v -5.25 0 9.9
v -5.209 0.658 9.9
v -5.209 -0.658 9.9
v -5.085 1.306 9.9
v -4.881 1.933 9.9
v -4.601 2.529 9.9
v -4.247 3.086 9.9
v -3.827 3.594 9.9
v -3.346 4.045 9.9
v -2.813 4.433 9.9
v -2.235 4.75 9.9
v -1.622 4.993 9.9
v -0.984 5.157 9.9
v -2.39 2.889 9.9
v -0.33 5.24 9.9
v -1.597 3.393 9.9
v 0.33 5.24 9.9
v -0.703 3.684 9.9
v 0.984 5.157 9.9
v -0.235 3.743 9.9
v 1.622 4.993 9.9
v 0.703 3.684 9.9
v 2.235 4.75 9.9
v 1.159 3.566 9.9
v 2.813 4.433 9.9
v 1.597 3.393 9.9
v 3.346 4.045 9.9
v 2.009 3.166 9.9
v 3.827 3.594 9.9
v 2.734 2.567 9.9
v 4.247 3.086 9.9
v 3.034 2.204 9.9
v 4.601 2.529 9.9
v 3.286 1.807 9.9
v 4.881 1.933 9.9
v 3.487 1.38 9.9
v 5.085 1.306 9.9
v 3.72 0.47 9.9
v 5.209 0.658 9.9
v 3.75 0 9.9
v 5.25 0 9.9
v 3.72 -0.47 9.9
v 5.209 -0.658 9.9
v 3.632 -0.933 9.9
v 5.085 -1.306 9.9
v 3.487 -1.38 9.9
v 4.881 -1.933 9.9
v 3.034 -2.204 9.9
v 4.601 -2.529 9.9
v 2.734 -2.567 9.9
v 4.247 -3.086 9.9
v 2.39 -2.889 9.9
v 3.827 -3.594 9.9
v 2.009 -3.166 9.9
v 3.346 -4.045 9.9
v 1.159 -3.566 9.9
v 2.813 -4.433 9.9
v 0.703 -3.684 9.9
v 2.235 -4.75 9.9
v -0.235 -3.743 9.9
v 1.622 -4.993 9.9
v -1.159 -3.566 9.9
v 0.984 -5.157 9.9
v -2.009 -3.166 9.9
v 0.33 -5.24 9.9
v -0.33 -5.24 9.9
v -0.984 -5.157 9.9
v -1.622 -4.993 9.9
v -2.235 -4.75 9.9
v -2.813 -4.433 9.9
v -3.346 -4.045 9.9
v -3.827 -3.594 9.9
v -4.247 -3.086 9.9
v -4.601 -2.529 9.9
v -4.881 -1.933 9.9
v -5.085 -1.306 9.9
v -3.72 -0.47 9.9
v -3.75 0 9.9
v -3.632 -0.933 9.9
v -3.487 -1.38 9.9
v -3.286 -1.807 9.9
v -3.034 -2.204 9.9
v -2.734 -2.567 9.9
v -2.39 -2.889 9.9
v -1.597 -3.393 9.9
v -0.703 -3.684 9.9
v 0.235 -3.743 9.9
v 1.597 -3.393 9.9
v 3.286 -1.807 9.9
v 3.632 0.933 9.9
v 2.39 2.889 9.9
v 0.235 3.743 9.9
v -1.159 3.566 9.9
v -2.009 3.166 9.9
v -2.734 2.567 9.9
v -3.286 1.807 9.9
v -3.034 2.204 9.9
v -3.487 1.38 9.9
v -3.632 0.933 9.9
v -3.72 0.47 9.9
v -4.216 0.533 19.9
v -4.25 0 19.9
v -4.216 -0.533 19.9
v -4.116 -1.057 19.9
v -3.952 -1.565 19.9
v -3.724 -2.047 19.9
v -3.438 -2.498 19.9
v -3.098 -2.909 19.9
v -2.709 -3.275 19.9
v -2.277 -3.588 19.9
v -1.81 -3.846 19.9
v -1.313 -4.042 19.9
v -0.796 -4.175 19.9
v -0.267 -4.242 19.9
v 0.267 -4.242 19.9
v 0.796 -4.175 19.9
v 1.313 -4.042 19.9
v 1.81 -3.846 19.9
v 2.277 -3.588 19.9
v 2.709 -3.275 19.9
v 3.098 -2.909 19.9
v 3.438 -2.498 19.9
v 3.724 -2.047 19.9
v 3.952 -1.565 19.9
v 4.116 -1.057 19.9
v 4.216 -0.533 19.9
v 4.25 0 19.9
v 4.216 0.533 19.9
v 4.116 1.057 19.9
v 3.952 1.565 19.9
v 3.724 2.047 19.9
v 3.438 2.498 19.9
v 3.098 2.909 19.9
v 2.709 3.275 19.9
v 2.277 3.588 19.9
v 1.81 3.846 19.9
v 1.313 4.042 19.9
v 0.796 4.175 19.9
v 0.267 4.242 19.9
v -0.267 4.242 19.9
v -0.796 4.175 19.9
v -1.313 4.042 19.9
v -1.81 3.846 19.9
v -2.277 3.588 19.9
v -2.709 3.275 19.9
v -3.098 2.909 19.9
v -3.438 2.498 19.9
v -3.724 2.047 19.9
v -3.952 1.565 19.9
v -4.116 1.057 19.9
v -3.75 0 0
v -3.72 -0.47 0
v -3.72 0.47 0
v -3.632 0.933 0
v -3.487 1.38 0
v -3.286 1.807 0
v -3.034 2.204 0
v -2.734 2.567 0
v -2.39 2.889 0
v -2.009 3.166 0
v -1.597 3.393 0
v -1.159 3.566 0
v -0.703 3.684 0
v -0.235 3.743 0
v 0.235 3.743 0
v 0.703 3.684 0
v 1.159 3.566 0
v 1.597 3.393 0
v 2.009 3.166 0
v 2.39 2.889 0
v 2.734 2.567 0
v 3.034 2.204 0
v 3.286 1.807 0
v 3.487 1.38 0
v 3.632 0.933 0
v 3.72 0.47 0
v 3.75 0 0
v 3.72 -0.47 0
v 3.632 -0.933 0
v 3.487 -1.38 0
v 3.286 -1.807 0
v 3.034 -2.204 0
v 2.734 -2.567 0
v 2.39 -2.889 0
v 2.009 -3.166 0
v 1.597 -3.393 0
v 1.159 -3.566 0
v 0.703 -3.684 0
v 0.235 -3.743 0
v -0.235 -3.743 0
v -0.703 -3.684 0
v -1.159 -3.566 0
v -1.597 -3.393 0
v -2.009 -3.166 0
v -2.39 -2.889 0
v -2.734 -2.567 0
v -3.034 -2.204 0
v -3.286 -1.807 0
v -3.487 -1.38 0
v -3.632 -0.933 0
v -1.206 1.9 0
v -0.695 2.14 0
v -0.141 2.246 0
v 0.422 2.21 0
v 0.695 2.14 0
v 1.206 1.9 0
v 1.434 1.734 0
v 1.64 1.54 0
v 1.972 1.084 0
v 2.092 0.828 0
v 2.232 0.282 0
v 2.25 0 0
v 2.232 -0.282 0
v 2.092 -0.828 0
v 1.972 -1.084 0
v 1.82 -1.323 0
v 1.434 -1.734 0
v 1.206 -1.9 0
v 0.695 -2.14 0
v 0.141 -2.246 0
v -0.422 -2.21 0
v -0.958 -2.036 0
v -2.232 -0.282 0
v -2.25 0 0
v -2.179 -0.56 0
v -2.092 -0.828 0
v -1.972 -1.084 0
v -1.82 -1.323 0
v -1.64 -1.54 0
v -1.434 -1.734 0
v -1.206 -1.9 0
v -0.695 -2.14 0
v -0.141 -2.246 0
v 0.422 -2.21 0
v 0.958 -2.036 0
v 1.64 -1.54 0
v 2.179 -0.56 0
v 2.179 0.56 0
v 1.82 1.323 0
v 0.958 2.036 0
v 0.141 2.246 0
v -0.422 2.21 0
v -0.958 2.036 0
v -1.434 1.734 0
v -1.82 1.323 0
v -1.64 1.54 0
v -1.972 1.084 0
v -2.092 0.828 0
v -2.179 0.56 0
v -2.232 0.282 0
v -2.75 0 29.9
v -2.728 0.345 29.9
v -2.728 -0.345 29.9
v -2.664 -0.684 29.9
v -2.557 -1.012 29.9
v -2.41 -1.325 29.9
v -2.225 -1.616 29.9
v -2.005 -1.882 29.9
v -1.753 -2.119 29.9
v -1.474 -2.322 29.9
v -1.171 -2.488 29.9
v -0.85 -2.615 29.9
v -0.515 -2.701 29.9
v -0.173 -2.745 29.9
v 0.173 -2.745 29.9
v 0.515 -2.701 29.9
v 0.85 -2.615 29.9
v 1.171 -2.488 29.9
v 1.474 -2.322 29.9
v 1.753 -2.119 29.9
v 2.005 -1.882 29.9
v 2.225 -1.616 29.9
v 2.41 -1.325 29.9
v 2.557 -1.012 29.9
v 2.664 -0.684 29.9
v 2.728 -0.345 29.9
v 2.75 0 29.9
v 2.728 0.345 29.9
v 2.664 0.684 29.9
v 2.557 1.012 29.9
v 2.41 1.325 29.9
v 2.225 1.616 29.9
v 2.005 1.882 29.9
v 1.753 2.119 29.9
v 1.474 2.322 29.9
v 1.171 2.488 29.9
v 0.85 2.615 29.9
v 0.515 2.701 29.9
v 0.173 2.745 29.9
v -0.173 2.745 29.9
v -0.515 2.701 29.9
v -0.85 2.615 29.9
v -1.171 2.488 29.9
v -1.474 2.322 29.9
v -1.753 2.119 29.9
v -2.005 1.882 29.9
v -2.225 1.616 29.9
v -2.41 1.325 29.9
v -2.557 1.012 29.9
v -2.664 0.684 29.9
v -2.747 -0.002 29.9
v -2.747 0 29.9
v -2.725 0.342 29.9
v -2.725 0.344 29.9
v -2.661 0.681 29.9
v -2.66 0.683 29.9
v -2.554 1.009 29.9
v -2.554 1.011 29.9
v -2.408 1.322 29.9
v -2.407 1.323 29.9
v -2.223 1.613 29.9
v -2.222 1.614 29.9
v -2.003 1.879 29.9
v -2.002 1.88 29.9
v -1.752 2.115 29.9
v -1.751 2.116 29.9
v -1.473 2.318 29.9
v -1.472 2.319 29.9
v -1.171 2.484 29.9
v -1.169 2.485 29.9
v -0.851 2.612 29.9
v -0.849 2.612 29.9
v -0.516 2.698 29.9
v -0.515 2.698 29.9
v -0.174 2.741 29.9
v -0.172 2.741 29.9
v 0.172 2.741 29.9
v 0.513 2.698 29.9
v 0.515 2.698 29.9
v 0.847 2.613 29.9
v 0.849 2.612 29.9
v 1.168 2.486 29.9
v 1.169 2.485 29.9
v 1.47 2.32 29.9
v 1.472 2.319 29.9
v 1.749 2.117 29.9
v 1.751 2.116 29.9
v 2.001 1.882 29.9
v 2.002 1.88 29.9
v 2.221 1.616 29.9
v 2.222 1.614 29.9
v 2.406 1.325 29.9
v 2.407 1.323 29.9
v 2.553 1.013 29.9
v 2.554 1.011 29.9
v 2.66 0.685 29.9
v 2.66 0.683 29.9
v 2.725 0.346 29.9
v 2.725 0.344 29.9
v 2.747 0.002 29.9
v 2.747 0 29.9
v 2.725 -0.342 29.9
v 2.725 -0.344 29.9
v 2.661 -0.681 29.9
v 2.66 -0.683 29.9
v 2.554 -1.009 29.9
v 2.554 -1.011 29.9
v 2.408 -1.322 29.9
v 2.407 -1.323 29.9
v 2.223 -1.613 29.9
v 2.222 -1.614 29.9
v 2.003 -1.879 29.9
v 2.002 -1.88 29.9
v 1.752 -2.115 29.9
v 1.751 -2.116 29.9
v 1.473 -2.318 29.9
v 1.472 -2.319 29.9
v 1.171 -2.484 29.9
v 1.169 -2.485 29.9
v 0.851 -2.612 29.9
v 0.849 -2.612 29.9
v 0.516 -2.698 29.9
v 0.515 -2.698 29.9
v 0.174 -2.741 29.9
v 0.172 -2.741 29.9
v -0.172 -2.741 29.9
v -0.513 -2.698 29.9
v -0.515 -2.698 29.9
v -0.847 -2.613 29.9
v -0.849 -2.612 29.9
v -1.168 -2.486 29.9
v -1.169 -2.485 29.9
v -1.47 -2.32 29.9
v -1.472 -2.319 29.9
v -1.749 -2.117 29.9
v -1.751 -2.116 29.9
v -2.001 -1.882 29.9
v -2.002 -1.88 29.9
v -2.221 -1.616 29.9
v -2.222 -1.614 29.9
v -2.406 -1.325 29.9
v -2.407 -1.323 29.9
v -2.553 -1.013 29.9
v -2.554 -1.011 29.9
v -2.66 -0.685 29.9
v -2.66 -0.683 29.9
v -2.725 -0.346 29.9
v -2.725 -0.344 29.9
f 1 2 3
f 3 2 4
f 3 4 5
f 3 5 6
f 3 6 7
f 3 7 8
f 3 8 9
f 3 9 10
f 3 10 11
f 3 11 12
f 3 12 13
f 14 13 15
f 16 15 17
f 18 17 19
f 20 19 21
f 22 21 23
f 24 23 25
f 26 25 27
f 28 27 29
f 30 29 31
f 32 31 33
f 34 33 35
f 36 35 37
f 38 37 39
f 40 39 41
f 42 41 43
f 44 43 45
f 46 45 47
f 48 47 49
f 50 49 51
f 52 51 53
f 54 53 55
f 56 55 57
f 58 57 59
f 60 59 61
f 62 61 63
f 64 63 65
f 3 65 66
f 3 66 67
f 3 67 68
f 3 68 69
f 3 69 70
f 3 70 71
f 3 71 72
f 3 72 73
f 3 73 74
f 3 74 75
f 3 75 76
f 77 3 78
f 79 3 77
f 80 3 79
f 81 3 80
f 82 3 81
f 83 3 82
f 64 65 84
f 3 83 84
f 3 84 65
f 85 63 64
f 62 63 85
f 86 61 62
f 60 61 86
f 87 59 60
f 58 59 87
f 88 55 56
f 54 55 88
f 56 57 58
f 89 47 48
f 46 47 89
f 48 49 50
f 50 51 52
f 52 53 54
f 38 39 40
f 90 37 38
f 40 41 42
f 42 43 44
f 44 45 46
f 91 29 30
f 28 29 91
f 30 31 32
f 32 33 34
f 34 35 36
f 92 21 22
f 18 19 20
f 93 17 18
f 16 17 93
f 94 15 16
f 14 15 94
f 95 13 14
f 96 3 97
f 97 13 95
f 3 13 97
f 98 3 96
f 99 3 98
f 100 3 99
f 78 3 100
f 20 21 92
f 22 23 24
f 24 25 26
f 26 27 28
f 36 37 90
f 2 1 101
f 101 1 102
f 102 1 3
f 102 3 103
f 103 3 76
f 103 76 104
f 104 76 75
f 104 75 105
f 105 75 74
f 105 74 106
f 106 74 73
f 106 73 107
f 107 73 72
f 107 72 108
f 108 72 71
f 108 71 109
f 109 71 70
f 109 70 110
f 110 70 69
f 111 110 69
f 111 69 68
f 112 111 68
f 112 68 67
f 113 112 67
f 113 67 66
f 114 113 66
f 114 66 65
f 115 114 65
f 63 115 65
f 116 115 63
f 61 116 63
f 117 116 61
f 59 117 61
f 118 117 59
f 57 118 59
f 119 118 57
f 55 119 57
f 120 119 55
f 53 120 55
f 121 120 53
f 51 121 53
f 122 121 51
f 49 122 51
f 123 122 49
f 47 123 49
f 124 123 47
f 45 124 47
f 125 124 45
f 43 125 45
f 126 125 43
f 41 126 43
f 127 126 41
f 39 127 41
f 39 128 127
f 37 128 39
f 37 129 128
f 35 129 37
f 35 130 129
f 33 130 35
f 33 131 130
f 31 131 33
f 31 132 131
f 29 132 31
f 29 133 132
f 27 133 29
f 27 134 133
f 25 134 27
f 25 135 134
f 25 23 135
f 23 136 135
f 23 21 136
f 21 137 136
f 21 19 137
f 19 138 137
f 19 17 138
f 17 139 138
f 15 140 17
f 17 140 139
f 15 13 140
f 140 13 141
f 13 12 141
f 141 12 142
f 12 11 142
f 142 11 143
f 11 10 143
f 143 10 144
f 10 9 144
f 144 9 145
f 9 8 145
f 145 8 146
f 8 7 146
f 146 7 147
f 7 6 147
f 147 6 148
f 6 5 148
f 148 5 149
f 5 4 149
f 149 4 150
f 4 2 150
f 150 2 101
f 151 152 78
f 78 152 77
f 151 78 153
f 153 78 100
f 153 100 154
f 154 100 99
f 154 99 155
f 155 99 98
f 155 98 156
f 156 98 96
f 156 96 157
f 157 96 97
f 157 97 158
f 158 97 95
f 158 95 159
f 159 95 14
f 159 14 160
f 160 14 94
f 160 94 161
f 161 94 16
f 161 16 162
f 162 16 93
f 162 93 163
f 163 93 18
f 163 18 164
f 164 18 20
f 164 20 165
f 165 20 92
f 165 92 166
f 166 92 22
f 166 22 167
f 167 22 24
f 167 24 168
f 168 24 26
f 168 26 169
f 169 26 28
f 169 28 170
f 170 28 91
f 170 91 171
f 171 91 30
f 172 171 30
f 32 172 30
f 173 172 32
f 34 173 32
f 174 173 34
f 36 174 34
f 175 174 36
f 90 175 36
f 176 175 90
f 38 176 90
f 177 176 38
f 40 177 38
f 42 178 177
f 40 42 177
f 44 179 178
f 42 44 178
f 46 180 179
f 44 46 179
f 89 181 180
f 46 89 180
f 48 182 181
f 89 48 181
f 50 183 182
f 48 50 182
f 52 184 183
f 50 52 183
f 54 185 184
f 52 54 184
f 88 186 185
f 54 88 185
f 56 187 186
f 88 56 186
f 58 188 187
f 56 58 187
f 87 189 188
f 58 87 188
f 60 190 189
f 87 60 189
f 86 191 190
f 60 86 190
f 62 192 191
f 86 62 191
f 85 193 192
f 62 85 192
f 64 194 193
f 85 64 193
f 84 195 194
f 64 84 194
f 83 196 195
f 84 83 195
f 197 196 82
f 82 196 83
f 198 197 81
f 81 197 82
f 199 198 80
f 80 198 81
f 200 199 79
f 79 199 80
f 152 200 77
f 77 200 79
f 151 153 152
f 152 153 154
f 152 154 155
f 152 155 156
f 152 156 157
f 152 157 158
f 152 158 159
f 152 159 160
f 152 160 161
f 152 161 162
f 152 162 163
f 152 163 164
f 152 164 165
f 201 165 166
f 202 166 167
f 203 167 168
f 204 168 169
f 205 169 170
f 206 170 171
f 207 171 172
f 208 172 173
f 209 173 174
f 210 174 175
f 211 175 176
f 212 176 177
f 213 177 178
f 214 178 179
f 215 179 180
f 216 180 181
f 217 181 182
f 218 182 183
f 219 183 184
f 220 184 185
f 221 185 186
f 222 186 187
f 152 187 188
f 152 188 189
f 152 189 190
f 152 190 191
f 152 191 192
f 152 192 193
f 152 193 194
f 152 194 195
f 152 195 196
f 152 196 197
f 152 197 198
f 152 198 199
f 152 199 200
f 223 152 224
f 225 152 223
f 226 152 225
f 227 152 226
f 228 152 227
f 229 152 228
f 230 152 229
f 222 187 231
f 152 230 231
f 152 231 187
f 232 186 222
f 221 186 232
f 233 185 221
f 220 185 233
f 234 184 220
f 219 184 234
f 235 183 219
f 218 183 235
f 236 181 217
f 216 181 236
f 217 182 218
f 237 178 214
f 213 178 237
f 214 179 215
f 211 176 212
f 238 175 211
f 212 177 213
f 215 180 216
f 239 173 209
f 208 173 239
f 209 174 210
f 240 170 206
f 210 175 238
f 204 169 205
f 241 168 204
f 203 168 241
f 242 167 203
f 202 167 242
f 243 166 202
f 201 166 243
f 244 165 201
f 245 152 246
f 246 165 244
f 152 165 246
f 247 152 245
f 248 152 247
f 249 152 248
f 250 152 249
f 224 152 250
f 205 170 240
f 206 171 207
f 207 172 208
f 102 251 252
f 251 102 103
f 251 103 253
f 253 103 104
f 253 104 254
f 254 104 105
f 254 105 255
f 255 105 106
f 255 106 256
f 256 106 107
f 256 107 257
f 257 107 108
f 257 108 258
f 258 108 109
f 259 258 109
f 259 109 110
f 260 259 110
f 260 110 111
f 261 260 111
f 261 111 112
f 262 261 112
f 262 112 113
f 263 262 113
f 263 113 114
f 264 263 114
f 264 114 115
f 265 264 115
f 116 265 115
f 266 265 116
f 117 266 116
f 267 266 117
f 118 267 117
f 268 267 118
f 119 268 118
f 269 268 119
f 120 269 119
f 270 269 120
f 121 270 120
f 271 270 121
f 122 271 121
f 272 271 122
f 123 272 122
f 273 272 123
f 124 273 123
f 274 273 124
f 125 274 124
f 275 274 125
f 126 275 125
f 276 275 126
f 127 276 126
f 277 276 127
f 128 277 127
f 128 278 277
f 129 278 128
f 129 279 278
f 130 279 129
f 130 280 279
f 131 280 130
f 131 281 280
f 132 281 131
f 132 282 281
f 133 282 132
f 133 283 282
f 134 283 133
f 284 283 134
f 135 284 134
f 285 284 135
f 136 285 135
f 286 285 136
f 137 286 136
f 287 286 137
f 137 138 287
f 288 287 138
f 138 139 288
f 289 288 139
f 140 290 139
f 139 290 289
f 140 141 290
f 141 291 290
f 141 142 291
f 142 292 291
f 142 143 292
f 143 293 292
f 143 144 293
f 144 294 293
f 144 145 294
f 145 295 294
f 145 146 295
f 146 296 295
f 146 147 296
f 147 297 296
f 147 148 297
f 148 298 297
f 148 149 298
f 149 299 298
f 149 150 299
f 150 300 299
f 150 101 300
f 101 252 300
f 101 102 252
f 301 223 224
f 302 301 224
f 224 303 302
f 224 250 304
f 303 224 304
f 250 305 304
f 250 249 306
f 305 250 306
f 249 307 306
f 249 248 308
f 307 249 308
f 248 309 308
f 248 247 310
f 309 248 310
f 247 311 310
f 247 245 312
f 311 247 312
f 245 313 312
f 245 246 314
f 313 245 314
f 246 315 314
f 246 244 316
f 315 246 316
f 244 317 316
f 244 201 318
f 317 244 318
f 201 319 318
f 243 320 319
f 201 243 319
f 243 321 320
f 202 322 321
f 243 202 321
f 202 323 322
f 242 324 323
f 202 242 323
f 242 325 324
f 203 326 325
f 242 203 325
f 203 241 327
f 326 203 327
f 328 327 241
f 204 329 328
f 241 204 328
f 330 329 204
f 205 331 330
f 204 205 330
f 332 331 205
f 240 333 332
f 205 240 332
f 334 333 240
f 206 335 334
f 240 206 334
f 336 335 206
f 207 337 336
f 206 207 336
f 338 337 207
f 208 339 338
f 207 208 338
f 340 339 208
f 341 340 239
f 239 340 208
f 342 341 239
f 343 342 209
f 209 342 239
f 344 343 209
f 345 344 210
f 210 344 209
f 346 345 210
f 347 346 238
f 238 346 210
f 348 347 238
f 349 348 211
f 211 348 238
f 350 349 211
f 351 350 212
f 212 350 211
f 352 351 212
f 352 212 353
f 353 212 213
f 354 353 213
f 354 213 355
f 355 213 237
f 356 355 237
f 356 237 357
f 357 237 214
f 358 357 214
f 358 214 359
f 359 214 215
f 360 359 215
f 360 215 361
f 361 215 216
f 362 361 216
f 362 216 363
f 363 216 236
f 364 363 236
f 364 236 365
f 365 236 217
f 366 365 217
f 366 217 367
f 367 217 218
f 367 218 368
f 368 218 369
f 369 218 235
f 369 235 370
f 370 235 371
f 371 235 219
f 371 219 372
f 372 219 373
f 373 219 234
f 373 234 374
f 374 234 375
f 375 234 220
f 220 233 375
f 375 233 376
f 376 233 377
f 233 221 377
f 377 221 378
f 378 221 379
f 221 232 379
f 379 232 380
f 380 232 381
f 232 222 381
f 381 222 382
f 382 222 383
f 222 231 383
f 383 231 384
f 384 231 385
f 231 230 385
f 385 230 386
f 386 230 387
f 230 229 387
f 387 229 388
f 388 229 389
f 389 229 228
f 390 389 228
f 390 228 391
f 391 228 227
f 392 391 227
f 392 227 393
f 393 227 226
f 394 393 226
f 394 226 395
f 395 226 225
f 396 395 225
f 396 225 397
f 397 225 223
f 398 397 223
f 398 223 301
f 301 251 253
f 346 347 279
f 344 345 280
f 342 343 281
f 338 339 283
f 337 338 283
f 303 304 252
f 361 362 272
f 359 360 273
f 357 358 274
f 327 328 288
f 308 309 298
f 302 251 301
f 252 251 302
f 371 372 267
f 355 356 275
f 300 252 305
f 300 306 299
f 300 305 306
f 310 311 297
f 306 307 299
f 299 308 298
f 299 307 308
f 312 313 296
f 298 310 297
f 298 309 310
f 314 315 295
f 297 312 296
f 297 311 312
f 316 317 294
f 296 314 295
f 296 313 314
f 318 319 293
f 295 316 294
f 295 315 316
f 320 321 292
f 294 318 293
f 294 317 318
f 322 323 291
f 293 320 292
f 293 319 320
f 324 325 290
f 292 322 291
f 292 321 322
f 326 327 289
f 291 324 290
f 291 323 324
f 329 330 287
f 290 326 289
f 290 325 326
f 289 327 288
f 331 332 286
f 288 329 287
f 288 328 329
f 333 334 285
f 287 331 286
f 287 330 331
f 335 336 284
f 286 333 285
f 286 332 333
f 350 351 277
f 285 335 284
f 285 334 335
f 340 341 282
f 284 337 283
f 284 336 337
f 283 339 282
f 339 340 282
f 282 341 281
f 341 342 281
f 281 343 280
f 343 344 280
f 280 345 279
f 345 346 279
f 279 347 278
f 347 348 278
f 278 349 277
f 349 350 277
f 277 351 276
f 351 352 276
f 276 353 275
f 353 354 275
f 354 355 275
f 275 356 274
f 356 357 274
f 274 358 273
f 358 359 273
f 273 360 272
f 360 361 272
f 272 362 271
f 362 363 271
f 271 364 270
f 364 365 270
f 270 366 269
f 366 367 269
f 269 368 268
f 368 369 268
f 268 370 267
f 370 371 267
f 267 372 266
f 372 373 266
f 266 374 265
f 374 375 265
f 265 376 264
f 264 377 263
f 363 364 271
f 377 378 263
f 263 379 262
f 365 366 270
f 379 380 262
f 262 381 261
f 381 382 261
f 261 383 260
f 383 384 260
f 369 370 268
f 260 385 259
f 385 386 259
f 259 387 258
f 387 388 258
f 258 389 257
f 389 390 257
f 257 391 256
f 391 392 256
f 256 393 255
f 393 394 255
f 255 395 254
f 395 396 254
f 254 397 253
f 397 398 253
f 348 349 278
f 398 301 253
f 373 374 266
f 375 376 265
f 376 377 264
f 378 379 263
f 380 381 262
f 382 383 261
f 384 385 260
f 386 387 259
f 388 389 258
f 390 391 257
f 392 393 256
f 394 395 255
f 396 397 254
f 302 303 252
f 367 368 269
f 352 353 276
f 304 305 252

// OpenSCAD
detail = 50;
marge = 0.1;
diametre_interieur_pompe = 7.5;
hauteur_embout_pompe = 10;
diametre_interieur_matelas = 8.5;
hauteur_embout_matelas = 10;
epaisseur = 1.5;

difference(){
union(){
cylinder(h=hauteur_embout_pompe, r=diametre_interieur_pompe/2, $fn=detail);
translate([0,0,hauteur_embout_pompe-marge]) cylinder(h=hauteur_embout_matelas, r1=diametre_interieur_pompe/2+epaisseur, r2=diametre_interieur_matelas/2, $fn=detail);
translate([0,0,hauteur_embout_pompe+hauteur_embout_matelas-marge]) cylinder(h=hauteur_embout_matelas, r1=diametre_interieur_matelas/2, r2=diametre_interieur_matelas/2-epaisseur, $fn=detail);
}
cylinder(h=hauteur_embout_pompe+2*hauteur_embout_matelas+marge, r1=diametre_interieur_pompe/2-epaisseur, r2=diametre_interieur_matelas/2-epaisseur, $fn=detail);
}
